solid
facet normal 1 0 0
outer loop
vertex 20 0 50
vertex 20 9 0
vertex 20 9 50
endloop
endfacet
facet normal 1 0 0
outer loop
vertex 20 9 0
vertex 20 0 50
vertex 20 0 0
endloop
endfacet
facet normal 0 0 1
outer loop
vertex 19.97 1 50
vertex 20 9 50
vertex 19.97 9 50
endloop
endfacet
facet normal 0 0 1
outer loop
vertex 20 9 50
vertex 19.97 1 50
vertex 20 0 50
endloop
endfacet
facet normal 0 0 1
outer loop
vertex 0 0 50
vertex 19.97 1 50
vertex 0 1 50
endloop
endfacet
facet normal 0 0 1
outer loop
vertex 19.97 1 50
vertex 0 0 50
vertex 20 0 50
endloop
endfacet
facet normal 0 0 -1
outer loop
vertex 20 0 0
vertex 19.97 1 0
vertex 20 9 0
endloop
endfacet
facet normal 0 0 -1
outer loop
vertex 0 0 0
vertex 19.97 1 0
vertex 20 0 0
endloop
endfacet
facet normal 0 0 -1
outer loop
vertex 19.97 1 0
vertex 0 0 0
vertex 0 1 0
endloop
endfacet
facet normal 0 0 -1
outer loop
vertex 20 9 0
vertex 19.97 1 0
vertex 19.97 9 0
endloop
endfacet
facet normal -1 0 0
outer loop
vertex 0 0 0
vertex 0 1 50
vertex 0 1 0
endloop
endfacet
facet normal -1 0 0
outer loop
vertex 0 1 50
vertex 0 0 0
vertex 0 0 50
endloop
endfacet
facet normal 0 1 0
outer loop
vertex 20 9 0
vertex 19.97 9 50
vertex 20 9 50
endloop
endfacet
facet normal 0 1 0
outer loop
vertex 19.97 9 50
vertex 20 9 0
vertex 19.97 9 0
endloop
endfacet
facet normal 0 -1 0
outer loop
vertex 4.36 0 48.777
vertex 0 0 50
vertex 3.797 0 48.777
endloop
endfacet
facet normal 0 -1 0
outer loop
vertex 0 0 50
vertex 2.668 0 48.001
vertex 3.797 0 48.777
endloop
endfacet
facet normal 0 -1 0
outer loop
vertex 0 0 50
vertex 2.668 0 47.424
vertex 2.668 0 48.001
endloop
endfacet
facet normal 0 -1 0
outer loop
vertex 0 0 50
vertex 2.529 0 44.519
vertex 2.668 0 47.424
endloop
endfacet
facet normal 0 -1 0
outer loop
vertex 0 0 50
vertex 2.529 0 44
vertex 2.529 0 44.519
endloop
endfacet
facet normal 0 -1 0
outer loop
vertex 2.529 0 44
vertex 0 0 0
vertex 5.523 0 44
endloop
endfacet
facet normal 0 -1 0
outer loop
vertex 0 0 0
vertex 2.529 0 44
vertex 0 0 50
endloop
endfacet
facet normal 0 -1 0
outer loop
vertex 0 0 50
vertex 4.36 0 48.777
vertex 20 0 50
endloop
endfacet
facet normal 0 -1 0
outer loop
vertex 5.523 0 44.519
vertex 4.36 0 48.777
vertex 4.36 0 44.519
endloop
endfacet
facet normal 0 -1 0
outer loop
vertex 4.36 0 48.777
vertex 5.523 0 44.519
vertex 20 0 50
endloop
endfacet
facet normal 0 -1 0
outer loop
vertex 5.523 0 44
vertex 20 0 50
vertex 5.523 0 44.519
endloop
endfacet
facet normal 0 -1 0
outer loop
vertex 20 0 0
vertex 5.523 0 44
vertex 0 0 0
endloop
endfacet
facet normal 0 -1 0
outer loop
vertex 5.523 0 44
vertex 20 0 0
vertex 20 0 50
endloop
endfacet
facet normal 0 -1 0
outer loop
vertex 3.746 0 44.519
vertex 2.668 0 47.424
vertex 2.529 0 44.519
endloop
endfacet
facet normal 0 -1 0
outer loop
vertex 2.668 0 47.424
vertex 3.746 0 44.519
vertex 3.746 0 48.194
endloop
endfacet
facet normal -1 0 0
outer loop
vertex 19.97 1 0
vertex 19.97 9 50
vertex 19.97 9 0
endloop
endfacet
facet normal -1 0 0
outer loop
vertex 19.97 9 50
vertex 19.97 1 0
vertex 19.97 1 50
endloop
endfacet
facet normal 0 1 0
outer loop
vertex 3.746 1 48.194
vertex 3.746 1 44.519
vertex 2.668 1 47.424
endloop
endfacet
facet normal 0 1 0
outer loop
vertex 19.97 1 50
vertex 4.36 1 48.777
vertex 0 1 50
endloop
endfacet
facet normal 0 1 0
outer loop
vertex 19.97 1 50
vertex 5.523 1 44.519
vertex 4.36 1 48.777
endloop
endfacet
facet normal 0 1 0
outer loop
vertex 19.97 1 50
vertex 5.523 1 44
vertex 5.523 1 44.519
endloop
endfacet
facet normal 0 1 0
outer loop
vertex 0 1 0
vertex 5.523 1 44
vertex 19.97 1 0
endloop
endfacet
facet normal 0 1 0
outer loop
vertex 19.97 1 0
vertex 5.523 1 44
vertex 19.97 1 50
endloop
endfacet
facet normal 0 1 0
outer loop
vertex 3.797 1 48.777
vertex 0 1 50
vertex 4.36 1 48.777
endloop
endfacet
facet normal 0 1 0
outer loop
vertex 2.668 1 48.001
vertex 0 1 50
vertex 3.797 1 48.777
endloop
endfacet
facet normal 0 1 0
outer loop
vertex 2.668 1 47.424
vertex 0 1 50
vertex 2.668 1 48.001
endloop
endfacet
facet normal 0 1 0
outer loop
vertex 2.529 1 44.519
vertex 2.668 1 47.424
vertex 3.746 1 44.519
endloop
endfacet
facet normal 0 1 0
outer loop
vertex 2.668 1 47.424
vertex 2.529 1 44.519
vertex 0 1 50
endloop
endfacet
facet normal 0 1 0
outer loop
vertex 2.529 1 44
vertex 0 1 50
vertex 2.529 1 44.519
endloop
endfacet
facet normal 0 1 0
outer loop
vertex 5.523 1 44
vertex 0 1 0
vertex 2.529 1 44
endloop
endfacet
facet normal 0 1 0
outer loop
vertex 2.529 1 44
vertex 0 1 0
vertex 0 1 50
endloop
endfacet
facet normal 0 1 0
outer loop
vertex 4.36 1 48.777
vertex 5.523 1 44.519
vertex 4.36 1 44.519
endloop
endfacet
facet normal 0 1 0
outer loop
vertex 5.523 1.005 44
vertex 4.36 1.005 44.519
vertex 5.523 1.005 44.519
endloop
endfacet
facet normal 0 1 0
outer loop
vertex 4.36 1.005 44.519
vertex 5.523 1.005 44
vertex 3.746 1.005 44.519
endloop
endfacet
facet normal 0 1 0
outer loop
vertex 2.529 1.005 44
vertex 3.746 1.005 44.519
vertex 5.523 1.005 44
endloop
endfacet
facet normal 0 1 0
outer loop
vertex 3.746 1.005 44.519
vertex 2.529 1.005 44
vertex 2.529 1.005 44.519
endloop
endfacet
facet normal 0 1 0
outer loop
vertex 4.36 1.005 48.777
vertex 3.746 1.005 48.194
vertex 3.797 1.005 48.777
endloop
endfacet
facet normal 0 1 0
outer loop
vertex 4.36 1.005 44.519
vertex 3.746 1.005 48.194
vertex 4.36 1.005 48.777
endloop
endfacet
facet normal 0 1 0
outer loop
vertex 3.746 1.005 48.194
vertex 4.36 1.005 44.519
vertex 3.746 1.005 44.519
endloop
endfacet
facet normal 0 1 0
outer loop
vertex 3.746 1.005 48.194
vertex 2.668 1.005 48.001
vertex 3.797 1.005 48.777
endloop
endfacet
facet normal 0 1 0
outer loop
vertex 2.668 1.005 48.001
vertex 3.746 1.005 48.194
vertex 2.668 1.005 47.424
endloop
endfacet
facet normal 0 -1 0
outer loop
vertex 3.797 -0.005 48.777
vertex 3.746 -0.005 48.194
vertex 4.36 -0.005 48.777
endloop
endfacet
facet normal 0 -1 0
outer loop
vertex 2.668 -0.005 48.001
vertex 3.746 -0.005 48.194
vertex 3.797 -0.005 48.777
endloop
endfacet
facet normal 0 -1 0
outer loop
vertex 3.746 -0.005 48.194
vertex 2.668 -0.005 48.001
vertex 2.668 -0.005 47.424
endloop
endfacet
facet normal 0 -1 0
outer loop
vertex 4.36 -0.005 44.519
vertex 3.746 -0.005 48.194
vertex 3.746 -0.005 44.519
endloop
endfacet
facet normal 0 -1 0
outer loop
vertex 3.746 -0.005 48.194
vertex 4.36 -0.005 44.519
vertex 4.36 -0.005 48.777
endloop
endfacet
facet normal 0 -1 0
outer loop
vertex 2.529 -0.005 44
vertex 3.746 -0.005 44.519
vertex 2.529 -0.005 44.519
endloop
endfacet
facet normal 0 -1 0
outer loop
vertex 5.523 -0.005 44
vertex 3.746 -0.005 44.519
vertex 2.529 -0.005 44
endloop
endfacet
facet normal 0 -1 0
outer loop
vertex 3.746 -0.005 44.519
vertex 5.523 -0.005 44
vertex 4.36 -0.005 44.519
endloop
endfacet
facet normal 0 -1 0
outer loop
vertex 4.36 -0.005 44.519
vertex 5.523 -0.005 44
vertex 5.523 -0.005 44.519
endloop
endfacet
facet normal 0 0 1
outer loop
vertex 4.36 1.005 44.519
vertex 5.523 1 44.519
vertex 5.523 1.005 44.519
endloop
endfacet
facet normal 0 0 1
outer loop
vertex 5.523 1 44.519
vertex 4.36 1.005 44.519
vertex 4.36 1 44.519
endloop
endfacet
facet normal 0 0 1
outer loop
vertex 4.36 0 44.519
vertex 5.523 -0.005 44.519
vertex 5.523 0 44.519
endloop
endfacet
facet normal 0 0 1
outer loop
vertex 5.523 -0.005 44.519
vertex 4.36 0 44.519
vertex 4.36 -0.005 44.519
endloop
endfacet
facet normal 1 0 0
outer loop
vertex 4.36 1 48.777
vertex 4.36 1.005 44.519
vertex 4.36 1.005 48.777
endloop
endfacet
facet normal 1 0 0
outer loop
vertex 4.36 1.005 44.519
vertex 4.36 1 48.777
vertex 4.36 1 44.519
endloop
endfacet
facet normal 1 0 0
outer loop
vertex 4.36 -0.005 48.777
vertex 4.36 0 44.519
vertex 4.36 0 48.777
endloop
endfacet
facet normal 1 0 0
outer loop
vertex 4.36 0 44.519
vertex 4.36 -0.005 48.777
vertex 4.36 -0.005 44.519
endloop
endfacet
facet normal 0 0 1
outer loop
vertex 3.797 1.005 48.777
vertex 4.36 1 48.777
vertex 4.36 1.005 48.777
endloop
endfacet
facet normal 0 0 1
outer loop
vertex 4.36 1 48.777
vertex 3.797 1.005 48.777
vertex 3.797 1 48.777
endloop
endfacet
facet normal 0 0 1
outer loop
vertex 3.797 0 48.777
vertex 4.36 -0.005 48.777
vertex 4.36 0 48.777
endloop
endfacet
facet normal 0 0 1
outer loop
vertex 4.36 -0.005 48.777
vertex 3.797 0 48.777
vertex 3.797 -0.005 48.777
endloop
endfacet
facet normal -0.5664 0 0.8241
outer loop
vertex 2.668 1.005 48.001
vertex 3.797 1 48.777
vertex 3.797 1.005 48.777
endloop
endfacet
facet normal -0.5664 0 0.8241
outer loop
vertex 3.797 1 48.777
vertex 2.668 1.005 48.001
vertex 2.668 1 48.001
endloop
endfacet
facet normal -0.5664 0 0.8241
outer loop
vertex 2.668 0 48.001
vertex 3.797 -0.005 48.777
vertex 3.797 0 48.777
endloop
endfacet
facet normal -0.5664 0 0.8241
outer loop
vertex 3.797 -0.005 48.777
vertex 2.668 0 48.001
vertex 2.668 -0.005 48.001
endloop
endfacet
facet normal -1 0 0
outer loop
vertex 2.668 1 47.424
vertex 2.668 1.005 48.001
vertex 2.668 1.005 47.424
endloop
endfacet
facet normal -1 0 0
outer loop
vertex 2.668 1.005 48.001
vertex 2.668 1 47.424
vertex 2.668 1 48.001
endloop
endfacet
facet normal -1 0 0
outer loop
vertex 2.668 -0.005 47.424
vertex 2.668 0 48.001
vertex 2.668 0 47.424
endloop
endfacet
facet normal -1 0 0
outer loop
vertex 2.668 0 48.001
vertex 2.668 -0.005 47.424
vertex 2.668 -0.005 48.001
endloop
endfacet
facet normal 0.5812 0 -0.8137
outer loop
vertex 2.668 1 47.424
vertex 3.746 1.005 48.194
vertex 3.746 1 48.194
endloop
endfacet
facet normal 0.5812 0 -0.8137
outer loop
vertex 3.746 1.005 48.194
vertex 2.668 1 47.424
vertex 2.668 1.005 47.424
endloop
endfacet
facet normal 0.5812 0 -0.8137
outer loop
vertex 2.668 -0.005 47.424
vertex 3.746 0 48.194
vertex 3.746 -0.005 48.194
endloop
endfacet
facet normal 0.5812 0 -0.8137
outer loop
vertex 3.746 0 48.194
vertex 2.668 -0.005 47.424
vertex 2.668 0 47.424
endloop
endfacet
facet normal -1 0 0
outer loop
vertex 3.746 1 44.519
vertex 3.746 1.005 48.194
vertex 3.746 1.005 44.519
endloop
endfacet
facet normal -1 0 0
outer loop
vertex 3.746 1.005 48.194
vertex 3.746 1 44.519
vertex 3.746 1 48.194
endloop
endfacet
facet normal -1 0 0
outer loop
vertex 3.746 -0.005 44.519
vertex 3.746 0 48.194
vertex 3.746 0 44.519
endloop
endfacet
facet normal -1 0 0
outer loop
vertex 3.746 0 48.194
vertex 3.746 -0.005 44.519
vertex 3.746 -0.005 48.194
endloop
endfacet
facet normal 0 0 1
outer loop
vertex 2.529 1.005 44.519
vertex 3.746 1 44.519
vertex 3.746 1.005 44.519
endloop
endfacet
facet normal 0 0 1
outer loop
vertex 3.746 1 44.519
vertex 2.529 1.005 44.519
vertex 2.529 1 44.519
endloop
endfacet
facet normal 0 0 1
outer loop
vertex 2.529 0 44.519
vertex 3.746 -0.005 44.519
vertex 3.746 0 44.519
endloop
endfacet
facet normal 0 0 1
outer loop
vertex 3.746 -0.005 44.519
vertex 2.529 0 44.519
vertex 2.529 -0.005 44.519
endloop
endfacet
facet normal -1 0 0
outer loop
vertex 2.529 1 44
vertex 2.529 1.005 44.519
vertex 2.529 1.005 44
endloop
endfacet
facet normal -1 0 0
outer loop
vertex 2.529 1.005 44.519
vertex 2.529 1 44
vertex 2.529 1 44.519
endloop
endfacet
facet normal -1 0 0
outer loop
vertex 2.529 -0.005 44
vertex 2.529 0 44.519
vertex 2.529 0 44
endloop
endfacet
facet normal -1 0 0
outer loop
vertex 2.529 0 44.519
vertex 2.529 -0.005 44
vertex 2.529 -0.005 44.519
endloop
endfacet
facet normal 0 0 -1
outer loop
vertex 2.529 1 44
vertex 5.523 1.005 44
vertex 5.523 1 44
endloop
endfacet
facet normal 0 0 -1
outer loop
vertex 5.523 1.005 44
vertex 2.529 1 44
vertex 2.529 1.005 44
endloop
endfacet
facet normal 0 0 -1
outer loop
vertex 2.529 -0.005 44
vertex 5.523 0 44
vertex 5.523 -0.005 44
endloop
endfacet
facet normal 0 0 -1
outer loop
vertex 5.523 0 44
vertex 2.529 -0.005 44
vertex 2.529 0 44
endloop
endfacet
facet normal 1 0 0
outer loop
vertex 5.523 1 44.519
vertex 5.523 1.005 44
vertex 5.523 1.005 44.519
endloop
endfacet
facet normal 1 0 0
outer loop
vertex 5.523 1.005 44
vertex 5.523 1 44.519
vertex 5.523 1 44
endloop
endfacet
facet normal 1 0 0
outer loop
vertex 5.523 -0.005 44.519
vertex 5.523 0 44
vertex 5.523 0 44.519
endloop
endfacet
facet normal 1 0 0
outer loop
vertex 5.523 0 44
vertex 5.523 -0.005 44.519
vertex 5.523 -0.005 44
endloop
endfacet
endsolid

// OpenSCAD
// ============================================================
// TPU flow-calibration coupon (Phase 1, test T1).
// A single-wall rectangle: print it, measure the wall with
// calipers at 5 points, adjust slicer flow % until measured =
// designed (wall_t) +/- 0.05 mm. Print lying flat, same settings
// as the fingers.
// ============================================================

wall_t   = 1.0;   // target wall thickness (match front_wall_t you'll use)
height   = 50;    // Z
length   = 20;    // X footprint
$fn = 8;
EPS = 0.01;

difference() {
    cube([length, wall_t + 8, height]);
    // hollow it into a thin U-wall so only the target wall is printed
    translate([-EPS, wall_t, -EPS])
        cube([length - 2*EPS, 8 + EPS, height + 2*EPS]);
}
// engrave the target thickness so coupons don't get mixed up
translate([2, wall_t/2, height - 6])
    rotate([90, 0, 0])
        linear_extrude(wall_t + EPS, center = true)
            text(str(wall_t), size = 5);
